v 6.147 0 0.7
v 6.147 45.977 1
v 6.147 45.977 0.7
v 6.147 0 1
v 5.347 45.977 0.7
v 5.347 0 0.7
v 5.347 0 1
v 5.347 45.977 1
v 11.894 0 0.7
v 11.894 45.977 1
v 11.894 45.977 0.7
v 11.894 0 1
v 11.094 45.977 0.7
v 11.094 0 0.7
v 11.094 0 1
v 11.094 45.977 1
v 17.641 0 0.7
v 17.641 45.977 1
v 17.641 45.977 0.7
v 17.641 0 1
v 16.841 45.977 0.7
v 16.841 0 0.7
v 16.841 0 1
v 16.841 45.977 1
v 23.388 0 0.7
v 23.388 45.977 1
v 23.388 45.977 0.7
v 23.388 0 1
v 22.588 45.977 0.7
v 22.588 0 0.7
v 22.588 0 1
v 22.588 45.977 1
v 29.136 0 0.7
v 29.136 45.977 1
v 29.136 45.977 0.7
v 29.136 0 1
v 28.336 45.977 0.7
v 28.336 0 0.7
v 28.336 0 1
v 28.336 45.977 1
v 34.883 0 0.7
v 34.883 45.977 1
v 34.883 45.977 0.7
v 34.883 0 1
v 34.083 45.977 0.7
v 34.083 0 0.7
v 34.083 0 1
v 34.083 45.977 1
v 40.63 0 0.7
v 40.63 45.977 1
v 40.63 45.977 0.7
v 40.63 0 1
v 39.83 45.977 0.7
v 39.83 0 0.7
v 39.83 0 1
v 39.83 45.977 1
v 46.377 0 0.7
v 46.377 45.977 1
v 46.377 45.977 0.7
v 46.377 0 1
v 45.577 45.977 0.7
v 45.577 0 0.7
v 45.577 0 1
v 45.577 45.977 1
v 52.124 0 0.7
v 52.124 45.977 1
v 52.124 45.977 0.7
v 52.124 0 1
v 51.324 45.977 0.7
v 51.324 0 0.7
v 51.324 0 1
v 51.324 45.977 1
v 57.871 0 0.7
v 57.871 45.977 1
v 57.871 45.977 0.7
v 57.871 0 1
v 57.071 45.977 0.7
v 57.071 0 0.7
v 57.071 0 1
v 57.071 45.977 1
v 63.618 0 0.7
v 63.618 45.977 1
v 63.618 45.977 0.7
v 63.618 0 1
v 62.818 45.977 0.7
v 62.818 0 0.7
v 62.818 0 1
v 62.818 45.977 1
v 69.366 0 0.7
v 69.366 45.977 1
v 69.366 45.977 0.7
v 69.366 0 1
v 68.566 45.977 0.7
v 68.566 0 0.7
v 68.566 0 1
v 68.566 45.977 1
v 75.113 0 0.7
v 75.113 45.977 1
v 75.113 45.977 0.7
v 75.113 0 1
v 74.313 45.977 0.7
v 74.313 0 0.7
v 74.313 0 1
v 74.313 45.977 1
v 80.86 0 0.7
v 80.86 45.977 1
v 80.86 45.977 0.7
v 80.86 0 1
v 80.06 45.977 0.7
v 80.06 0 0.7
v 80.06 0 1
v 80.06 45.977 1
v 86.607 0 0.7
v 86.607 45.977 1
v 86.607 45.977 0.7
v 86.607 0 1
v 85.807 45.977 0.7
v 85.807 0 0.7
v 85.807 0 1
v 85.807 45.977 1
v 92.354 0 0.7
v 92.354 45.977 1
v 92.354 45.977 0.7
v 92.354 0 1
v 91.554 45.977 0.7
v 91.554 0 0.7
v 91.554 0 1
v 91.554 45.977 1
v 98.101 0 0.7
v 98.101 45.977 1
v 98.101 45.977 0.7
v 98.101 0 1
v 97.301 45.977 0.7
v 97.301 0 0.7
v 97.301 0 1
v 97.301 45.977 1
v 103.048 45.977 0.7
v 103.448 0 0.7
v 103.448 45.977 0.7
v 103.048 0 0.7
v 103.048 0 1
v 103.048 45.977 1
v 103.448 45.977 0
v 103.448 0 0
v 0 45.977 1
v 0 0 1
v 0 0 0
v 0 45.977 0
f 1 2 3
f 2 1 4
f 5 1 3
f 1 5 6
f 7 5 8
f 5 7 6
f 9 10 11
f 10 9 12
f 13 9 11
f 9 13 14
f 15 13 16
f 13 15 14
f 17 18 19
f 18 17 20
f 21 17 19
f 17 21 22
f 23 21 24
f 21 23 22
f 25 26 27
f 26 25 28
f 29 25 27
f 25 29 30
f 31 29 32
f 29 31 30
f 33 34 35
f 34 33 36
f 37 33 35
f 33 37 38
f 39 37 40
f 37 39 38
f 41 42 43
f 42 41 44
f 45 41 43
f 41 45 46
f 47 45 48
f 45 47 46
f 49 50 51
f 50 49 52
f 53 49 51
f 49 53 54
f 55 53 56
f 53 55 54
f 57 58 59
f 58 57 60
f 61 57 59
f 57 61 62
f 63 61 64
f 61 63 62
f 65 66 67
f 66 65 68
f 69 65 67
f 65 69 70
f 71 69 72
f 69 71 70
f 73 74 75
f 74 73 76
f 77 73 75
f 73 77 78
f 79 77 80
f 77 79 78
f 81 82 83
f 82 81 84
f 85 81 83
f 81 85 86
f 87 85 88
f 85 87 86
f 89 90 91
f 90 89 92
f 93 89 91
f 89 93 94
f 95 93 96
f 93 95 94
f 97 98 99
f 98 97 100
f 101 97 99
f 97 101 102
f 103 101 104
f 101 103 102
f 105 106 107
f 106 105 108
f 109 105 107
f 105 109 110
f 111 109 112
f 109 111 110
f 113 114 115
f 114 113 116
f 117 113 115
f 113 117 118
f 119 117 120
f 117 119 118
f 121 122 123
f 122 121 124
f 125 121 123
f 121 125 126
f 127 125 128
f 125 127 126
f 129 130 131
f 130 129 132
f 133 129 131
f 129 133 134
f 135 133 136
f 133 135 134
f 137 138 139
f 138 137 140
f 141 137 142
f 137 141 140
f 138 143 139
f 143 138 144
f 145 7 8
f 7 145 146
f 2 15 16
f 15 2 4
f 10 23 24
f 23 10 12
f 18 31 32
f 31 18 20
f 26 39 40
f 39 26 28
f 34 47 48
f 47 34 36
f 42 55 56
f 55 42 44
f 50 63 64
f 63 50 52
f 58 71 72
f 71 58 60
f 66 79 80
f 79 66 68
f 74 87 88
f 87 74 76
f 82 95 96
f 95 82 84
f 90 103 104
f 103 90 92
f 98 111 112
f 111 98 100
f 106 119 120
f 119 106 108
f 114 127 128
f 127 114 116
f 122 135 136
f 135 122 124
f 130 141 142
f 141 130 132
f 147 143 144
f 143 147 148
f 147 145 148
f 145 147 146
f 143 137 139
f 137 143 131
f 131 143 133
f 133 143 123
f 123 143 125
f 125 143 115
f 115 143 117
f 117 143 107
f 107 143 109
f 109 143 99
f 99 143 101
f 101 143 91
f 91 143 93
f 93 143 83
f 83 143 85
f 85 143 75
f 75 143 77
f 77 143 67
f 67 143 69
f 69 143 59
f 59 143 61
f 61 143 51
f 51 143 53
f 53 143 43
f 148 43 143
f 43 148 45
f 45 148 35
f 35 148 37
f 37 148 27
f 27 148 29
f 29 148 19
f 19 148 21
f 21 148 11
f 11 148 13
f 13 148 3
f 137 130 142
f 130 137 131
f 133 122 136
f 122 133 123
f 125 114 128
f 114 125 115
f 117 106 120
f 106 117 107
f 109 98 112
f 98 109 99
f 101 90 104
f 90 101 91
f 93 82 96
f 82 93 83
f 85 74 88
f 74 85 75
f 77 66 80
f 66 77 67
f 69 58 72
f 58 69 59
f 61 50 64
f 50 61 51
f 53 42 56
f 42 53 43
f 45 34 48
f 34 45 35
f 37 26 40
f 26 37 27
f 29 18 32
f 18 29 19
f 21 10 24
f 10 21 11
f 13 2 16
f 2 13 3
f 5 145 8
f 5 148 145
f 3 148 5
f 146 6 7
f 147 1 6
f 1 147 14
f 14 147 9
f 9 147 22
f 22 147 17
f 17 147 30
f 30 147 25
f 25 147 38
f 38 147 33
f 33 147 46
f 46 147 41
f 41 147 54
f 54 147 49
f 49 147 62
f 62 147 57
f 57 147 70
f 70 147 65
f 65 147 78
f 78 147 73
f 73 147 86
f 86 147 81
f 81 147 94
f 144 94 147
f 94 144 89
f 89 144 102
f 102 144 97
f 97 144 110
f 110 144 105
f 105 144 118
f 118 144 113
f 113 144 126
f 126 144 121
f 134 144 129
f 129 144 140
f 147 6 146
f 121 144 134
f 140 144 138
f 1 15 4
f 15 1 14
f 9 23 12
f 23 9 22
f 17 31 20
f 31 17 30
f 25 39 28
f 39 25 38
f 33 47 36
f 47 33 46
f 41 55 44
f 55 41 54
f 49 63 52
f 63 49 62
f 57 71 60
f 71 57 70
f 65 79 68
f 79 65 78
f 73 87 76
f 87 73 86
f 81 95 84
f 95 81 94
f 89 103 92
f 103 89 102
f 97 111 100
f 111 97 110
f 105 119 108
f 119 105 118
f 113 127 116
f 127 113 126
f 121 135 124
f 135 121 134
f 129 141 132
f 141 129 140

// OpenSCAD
/*
 * PROMPT: Right side wall panel of the Cities-Skylines-style police station garage
 * annex in H0 scale (1:87). Plain facade with vertical siding grooves on exterior
 * face. Flat 1 mm panel, exterior face up.
 */

$fn = 32;
S = 1/87;
panel_t = 1.0;

annex_d_real  = 9000;
annex_h_real  = 4000;
siding_p_real = 500;
siding_w      = 0.8;
siding_d      = 0.3;

annex_d  = annex_d_real * S;
annex_h  = annex_h_real * S;
siding_p = siding_p_real * S;

module garage_wall_right() {
    difference() {
        cube([annex_d, annex_h, panel_t]);

        // vertical siding grooves on exterior face
        for (i = [1 : floor(annex_d / siding_p)]) {
            gx = i * siding_p - siding_w/2;
            translate([gx, -1, panel_t - siding_d])
                cube([siding_w, annex_h+2, siding_d+1]);
        }
    }
}

garage_wall_right();
